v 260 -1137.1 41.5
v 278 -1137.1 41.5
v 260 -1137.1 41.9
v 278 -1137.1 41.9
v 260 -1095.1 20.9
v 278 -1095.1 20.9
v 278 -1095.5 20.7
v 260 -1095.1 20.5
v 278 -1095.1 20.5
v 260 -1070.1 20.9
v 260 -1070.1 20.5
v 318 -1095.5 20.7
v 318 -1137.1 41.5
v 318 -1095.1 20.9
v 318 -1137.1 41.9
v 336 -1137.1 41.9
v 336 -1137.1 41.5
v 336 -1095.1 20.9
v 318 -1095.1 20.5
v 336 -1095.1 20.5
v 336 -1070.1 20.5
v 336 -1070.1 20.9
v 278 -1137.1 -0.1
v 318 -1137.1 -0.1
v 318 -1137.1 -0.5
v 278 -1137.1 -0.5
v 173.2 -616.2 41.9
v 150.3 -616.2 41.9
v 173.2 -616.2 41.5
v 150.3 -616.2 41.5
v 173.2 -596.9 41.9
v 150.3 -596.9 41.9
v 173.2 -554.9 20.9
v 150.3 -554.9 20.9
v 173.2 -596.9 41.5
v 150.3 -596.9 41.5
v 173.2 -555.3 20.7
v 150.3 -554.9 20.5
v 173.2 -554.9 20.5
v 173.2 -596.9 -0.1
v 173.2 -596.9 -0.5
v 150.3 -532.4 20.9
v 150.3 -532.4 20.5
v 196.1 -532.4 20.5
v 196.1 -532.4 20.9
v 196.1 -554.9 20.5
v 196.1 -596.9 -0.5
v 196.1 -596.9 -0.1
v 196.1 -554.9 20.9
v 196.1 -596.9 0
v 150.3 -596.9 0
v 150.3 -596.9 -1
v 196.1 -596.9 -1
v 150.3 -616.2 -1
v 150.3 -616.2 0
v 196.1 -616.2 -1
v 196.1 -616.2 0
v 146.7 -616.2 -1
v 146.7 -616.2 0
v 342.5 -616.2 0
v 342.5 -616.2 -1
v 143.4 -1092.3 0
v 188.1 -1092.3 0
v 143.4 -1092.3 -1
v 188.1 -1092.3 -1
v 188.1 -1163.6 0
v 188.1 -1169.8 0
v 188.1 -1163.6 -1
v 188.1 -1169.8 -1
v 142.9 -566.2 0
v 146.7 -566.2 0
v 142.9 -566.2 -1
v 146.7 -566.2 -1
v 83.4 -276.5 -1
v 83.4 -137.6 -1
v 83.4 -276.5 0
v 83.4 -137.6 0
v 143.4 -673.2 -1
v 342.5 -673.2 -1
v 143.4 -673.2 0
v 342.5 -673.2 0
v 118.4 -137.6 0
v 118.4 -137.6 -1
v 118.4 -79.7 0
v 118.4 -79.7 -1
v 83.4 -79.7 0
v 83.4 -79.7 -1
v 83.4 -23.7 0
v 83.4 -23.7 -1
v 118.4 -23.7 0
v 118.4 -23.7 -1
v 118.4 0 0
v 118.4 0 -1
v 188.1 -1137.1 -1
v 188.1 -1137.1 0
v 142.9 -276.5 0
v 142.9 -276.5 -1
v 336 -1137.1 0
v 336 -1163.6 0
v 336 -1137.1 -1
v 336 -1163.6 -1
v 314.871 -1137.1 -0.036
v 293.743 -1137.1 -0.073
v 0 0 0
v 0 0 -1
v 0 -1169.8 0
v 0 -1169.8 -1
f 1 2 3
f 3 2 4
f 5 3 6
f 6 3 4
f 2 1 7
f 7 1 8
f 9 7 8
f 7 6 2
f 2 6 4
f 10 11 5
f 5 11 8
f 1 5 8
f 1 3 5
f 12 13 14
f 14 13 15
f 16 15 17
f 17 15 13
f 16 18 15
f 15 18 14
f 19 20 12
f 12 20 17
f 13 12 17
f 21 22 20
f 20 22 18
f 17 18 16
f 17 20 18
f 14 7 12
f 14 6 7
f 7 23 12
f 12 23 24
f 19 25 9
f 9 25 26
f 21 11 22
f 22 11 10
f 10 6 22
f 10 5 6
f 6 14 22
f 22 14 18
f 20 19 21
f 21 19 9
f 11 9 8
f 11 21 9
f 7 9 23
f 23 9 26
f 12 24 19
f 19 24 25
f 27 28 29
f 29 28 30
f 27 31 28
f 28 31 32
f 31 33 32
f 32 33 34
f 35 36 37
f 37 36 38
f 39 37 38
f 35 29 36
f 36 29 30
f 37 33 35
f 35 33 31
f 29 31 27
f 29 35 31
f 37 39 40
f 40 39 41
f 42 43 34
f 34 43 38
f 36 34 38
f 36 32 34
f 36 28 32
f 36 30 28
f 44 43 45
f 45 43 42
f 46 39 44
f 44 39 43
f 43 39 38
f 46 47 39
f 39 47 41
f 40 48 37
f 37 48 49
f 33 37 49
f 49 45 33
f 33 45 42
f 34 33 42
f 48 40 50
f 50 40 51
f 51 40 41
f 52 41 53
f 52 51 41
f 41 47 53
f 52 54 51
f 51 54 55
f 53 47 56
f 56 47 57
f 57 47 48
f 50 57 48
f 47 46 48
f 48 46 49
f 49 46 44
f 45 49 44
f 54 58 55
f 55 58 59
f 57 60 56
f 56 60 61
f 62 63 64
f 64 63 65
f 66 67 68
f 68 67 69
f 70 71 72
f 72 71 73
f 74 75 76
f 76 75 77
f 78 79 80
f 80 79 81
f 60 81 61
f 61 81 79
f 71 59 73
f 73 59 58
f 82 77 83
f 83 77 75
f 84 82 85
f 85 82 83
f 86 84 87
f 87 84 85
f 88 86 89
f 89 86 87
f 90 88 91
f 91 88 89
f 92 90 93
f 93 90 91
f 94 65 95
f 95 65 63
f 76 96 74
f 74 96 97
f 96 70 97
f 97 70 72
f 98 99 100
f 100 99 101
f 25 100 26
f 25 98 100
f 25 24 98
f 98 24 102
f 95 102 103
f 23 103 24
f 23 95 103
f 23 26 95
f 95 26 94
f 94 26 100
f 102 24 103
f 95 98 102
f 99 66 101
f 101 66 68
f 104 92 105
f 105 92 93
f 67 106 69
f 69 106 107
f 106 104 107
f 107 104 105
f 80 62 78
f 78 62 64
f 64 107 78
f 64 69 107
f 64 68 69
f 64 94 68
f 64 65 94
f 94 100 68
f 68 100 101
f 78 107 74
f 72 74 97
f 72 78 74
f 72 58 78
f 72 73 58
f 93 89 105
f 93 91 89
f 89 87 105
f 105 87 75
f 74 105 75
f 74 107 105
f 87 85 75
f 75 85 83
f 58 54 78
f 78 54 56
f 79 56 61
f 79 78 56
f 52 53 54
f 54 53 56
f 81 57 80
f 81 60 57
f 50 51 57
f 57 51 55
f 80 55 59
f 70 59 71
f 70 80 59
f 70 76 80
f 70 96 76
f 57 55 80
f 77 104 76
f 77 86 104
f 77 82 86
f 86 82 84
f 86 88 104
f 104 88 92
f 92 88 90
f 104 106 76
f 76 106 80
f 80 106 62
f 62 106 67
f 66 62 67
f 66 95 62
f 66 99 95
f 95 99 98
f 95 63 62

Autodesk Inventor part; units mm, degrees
ref_plane "工作平面1" through (0, 0, 0) normal (0, 0, 1) x (1, 0, 0)
sketch "草图1" plane through (0, 0, 0) normal (0, 0, 1) x (1, 0, 0)
  line L0 (0, 0) -> (60, 0)
  line L1 (60, 0) -> (60, -1169.8)
  line L2 (60, -1169.8) -> (0, -1169.8)
  line L3 (0, -1169.8) -> (0, 0)
  line L4 (0, -80.6) -> (60, -80.6)
  line L5 (0, -191.9) -> (60, -191.9)
  line L6 (0, -276.5) -> (60, -276.5)
  line L7 (0, -335.9) -> (60, -335.9)
  line L8 (0, -420.6) -> (60, -420.6)
  line L9 (0, -550.6) -> (60, -550.6)
  line L10 (0, -677.8) -> (60, -677.8)
  line L11 (0, -782.9) -> (60, -782.9)
  line L12 (0, -839.5) -> (60, -839.5)
  line L13 (0, -923.6) -> (60, -923.6)
  line L14 (0, -1007.7) -> (60, -1007.7)
  line L15 (0, -1091.2) -> (60, -1091.2)
  line L16 (60, 0) -> (118.4, 0)
  line L17 (118.4, 0) -> (118.4, -23.7)
  line L18 (118.4, -23.7) -> (83.4, -23.7)
  line L19 (83.4, -23.7) -> (83.4, -79.7)
  line L20 (83.4, -79.7) -> (118.4, -79.7)
  line L21 (118.4, -79.7) -> (118.4, -137.6)
  line L22 (118.4, -137.6) -> (83.4, -137.6)
  line L23 (83.4, -137.6) -> (83.4, -276.5)
  line L24 (83.4, -276.5) -> (142.9, -276.5)
  line L25 (142.9, -276.5) -> (142.9, -379.5)
  line L26 (83.4, -276.5) -> (83.4, -379.5)
  line L27 (83.4, -379.5) -> (142.9, -379.5)
  line L28 (142.9, -379.5) -> (142.9, -463)
  line L29 (142.9, -463) -> (83.4, -463)
  line L30 (83.4, -463) -> (83.4, -379.5)
  line L31 (142.9, -463) -> (142.9, -566.2)
  line L32 (142.9, -566.2) -> (83.4, -566.2)
  line L33 (83.4, -566.2) -> (83.4, -463)
  line L34 (142.9, -566.2) -> (146.7, -566.2)
  line L35 (146.7, -566.2) -> (146.7, -616.2)
  line L36 (146.7, -616.2) -> (192.5, -616.2)
  line L37 (192.5, -616.2) -> (192.5, -673.2)
  line L38 (192.5, -616.2) -> (342.5, -616.2)
  line L39 (342.5, -616.2) -> (342.5, -673.2)
  line L40 (342.5, -673.2) -> (143.4, -673.2)
  line L41 (143.4, -673.2) -> (83.4, -673.2)
  line L42 (83.4, -673.2) -> (83.4, -1092.3)
  line L43 (83.4, -1092.3) -> (143.4, -1092.3)
  line L44 (143.4, -1092.3) -> (143.4, -673.2)
  line L45 (83.4, -754.3) -> (143.4, -754.3)
  line L46 (143.4, -837.8) -> (83.4, -837.8)
  line L47 (83.4, -893.6) -> (143.4, -893.6)
  line L48 (143.4, -978.3) -> (83.4, -978.3)
  line L49 (60, -1169.8) -> (188.1, -1169.8)
  line L50 (188.1, -1169.8) -> (188.1, -1092.3)
  line L51 (188.1, -1092.3) -> (143.4, -1092.3)
  line L52 (83.4, -1092.3) -> (83.4, -1117.3)
  line L53 (83.4, -1117.3) -> (188.1, -1117.3)
  line L54 (98.6, -1092.3) -> (98.6, -1117.3)
  line L55 (114.5, -1092.3) -> (114.5, -1117.3)
  line L56 (143.4, -1092.3) -> (143.4, -1117.3)
  line L57 (166.2, -1092.3) -> (166.2, -1117.3)
  line L58 (188.1, -1163.6) -> (336, -1163.6)
  line L59 (188.1, -1137.1) -> (336, -1137.1)
  line L60 (336, -1137.1) -> (336, -1163.6)
  dimension "d1" = 60
  dimension "d2" = 80.6
  dimension "d3" = 111.3
  dimension "d4" = 84.6
  dimension "d5" = 59.4
  dimension "d6" = 84.7
  dimension "d7" = 130
  dimension "d8" = 127.2
  dimension "d9" = 105.1
  dimension "d10" = 56.6
  dimension "d11" = 84.1
  dimension "d12" = 84.1
  dimension "d13" = 83.5
  dimension "d14" = 78.6
  dimension "d15" = 58.4
  dimension "d16" = 23.7
  dimension "d17" = 35
  dimension "d18" = 56
  dimension "d19" = 57.9
  dimension "d20" = 35
  dimension "d21" = 138.9
  dimension "d22" = 59.5
  dimension "d23" = 103
  dimension "d24" = 83.5
  dimension "d25" = 103.2
  dimension "d26" = 59.5
  dimension "d27" = 3.8
  dimension "d28" = 50
  dimension "d29" = 45.8
  dimension "d30" = 57
  dimension "d31" = 150
  dimension "d32" = 57
  dimension "d33" = 199.1
  dimension "d34" = 60
  dimension "d36" = 81.1
  dimension "d37" = 83.5
  dimension "d38" = 55.8
  dimension "d39" = 84.7
  dimension "d40" = 114
  dimension "d41" = 128.1
  dimension "d42" = 25
  dimension "d43" = 15.2
  dimension "d44" = 15.9
  dimension "d45" = 28.9
  dimension "d46" = 22.8
  dimension "d47" = 21.9
  dimension "d48" = 147.9
  dimension "d49" = 6.2
  dimension "d50" = 26.5
extrude "拉伸1" add sketch "草图1" against normal blind 1
sketch "草图2" plane through (0, 0, 0) normal (0, 0, 1) x (1, 0, 0)
  line L0 (342.5, -616.2) -> (146.7, -616.2) construction
  line L1 (342.5, -673.2) -> (342.5, -616.2) construction
  line L2 (143.4, -673.2) -> (342.5, -673.2) construction
  line L3 (146.7, -616.2) -> (146.7, -566.2) construction
  line L4 (150.3, -616.2) -> (150.3, -596.9)
  line L5 (150.3, -596.9) -> (196.1, -596.9)
  line L6 (196.1, -596.9) -> (196.1, -616.2)
  line L7 (150.3, -616.2) -> (196.1, -616.2)
  point P0 (0, 0)
  dimension "d53" = 19.3
  dimension "d54" = 45.8
  dimension "d55" = 3.6
extrude "拉伸2" add sketch "草图2" against normal up to surface (1 mm away)
ref_plane "工作平面2" through (173.2, -616.2, 0) normal (1, 0, 0) x (0, 0, -1)
sketch "草图3" plane through (173.2, -616.2, 0) normal (1, 0, 0) x (0, 0, -1)
  line L0 (0, 19.3) -> (1, 19.3) construction
  line L1 (0.5, 19.3) -> (-20.5, 61.3)
  line L2 (0.5, 19.3) -> (0.1, 19.3)
  line L3 (0.1, 19.3) -> (-20.9, 61.3)
  line L4 (-20.9, 61.3) -> (-20.5, 61.3)
  line L5 (-20.9, 61.3) -> (-20.9, 83.8)
  line L6 (-20.9, 83.8) -> (-20.5, 83.8)
  line L7 (-20.5, 83.8) -> (-20.5, 61.3)
  point P0 (0, 616.2)
  dimension "d58" = 42
  dimension "d60" = 21
  dimension "d61" = 0.4
  dimension "d64" = 22.5
extrude "拉伸3" add sketch "草图3" along normal up to surface (22.9 mm away)
extrude "拉伸4" add sketch "草图3" against normal up to surface (22.9 mm away) contours L4 L5 L6 L7
sketch "草图5" plane through (150.3, -554.9, 20.5) normal (-1, 0, 0) x (0, 0, 1)
  line L0 (0.4, 0) -> (0, 0) construction
  line L1 (0.2, 0) -> (21.2, -42) construction
  line L2 (0, 0) -> (21, -42)
  line L3 (0.4, 0) -> (0, 0)
  line L4 (0.4, 0) -> (21.4, -42)
  line L5 (21.4, -42) -> (21.2, -42)
  line L6 (21, -42) -> (21.2, -42)
  line L7 (21.4, -42) -> (21.4, -61.3)
  line L8 (21.4, -61.3) -> (21, -61.3)
  line L9 (21, -61.3) -> (21, -42)
  point P0 (-20.5, 554.9)
  dimension "d67" = 42
  dimension "d69" = 21
  dimension "d71" = 19.3
extrude "拉伸5" add sketch "草图5" against normal up to surface (22.9 mm away)
ref_plane "工作平面3" through (318, -1163.6, 0) normal (1, 0, 0) x (0, 0, -1)
sketch "草图6" plane through (318, -1163.6, 0) normal (1, 0, 0) x (0, 0, -1)
  line L0 (0, 26.5) -> (1, 26.5) construction
  line L1 (0.5, 26.5) -> (-20.5, 68.5)
  line L2 (0.5, 26.5) -> (0.1, 26.5)
  line L3 (0.1, 26.5) -> (-20.9, 68.5)
  line L4 (-20.9, 68.5) -> (-20.5, 68.5)
  line L5 (-20.9, 68.5) -> (-20.9, 93.5)
  line L6 (-20.9, 93.5) -> (-20.5, 93.5)
  line L7 (-20.5, 93.5) -> (-20.5, 68.5)
  point P0 (0, 1163.6)
  dimension "d75" = 42
  dimension "d77" = 21
  dimension "d78" = 0.4
  dimension "d79" = 25
  dimension "d80" = 0.4
extrude "拉伸6" add sketch "草图6" against normal blind 40
sketch "草图7" plane through (318, -1163.6, 0) normal (1, 0, 0) x (0, 0, -1)
  line L0 (-20.9, 93.5) -> (-20.9, 68.5) construction
  line L1 (-20.5, 68.5) -> (-20.5, 93.5) construction
  line L2 (-20.5, 93.5) -> (-20.9, 93.5) construction
  line L3 (-20.9, 93.5) -> (-20.5, 93.5)
  line L4 (-20.5, 93.5) -> (-20.5, 68.5)
  line L5 (-20.5, 68.5) -> (-20.9, 68.5)
  line L6 (-20.9, 68.5) -> (-20.9, 93.5)
  line L7 (-20.5, 68.5) -> (-41.5, 26.5)
  line L8 (-20.9, 68.5) -> (-41.9, 26.5)
  line L9 (-41.9, 26.5) -> (-41.5, 26.5)
  point P0 (0, 1163.6)
  dimension "d83" = 21
  dimension "d84" = 42
extrude "拉伸7" add sketch "草图7" along normal up to surface (18 mm away)
ref_plane "工作平面4" through (298, -1163.6, 0) normal (1, 0, 0) x (0, 0, -1)
mirror "镜像1" about plane through (298, -1163.6, 0) normal (1, 0, 0) of "拉伸7"
properties part number "LabVIEWM0.5"
